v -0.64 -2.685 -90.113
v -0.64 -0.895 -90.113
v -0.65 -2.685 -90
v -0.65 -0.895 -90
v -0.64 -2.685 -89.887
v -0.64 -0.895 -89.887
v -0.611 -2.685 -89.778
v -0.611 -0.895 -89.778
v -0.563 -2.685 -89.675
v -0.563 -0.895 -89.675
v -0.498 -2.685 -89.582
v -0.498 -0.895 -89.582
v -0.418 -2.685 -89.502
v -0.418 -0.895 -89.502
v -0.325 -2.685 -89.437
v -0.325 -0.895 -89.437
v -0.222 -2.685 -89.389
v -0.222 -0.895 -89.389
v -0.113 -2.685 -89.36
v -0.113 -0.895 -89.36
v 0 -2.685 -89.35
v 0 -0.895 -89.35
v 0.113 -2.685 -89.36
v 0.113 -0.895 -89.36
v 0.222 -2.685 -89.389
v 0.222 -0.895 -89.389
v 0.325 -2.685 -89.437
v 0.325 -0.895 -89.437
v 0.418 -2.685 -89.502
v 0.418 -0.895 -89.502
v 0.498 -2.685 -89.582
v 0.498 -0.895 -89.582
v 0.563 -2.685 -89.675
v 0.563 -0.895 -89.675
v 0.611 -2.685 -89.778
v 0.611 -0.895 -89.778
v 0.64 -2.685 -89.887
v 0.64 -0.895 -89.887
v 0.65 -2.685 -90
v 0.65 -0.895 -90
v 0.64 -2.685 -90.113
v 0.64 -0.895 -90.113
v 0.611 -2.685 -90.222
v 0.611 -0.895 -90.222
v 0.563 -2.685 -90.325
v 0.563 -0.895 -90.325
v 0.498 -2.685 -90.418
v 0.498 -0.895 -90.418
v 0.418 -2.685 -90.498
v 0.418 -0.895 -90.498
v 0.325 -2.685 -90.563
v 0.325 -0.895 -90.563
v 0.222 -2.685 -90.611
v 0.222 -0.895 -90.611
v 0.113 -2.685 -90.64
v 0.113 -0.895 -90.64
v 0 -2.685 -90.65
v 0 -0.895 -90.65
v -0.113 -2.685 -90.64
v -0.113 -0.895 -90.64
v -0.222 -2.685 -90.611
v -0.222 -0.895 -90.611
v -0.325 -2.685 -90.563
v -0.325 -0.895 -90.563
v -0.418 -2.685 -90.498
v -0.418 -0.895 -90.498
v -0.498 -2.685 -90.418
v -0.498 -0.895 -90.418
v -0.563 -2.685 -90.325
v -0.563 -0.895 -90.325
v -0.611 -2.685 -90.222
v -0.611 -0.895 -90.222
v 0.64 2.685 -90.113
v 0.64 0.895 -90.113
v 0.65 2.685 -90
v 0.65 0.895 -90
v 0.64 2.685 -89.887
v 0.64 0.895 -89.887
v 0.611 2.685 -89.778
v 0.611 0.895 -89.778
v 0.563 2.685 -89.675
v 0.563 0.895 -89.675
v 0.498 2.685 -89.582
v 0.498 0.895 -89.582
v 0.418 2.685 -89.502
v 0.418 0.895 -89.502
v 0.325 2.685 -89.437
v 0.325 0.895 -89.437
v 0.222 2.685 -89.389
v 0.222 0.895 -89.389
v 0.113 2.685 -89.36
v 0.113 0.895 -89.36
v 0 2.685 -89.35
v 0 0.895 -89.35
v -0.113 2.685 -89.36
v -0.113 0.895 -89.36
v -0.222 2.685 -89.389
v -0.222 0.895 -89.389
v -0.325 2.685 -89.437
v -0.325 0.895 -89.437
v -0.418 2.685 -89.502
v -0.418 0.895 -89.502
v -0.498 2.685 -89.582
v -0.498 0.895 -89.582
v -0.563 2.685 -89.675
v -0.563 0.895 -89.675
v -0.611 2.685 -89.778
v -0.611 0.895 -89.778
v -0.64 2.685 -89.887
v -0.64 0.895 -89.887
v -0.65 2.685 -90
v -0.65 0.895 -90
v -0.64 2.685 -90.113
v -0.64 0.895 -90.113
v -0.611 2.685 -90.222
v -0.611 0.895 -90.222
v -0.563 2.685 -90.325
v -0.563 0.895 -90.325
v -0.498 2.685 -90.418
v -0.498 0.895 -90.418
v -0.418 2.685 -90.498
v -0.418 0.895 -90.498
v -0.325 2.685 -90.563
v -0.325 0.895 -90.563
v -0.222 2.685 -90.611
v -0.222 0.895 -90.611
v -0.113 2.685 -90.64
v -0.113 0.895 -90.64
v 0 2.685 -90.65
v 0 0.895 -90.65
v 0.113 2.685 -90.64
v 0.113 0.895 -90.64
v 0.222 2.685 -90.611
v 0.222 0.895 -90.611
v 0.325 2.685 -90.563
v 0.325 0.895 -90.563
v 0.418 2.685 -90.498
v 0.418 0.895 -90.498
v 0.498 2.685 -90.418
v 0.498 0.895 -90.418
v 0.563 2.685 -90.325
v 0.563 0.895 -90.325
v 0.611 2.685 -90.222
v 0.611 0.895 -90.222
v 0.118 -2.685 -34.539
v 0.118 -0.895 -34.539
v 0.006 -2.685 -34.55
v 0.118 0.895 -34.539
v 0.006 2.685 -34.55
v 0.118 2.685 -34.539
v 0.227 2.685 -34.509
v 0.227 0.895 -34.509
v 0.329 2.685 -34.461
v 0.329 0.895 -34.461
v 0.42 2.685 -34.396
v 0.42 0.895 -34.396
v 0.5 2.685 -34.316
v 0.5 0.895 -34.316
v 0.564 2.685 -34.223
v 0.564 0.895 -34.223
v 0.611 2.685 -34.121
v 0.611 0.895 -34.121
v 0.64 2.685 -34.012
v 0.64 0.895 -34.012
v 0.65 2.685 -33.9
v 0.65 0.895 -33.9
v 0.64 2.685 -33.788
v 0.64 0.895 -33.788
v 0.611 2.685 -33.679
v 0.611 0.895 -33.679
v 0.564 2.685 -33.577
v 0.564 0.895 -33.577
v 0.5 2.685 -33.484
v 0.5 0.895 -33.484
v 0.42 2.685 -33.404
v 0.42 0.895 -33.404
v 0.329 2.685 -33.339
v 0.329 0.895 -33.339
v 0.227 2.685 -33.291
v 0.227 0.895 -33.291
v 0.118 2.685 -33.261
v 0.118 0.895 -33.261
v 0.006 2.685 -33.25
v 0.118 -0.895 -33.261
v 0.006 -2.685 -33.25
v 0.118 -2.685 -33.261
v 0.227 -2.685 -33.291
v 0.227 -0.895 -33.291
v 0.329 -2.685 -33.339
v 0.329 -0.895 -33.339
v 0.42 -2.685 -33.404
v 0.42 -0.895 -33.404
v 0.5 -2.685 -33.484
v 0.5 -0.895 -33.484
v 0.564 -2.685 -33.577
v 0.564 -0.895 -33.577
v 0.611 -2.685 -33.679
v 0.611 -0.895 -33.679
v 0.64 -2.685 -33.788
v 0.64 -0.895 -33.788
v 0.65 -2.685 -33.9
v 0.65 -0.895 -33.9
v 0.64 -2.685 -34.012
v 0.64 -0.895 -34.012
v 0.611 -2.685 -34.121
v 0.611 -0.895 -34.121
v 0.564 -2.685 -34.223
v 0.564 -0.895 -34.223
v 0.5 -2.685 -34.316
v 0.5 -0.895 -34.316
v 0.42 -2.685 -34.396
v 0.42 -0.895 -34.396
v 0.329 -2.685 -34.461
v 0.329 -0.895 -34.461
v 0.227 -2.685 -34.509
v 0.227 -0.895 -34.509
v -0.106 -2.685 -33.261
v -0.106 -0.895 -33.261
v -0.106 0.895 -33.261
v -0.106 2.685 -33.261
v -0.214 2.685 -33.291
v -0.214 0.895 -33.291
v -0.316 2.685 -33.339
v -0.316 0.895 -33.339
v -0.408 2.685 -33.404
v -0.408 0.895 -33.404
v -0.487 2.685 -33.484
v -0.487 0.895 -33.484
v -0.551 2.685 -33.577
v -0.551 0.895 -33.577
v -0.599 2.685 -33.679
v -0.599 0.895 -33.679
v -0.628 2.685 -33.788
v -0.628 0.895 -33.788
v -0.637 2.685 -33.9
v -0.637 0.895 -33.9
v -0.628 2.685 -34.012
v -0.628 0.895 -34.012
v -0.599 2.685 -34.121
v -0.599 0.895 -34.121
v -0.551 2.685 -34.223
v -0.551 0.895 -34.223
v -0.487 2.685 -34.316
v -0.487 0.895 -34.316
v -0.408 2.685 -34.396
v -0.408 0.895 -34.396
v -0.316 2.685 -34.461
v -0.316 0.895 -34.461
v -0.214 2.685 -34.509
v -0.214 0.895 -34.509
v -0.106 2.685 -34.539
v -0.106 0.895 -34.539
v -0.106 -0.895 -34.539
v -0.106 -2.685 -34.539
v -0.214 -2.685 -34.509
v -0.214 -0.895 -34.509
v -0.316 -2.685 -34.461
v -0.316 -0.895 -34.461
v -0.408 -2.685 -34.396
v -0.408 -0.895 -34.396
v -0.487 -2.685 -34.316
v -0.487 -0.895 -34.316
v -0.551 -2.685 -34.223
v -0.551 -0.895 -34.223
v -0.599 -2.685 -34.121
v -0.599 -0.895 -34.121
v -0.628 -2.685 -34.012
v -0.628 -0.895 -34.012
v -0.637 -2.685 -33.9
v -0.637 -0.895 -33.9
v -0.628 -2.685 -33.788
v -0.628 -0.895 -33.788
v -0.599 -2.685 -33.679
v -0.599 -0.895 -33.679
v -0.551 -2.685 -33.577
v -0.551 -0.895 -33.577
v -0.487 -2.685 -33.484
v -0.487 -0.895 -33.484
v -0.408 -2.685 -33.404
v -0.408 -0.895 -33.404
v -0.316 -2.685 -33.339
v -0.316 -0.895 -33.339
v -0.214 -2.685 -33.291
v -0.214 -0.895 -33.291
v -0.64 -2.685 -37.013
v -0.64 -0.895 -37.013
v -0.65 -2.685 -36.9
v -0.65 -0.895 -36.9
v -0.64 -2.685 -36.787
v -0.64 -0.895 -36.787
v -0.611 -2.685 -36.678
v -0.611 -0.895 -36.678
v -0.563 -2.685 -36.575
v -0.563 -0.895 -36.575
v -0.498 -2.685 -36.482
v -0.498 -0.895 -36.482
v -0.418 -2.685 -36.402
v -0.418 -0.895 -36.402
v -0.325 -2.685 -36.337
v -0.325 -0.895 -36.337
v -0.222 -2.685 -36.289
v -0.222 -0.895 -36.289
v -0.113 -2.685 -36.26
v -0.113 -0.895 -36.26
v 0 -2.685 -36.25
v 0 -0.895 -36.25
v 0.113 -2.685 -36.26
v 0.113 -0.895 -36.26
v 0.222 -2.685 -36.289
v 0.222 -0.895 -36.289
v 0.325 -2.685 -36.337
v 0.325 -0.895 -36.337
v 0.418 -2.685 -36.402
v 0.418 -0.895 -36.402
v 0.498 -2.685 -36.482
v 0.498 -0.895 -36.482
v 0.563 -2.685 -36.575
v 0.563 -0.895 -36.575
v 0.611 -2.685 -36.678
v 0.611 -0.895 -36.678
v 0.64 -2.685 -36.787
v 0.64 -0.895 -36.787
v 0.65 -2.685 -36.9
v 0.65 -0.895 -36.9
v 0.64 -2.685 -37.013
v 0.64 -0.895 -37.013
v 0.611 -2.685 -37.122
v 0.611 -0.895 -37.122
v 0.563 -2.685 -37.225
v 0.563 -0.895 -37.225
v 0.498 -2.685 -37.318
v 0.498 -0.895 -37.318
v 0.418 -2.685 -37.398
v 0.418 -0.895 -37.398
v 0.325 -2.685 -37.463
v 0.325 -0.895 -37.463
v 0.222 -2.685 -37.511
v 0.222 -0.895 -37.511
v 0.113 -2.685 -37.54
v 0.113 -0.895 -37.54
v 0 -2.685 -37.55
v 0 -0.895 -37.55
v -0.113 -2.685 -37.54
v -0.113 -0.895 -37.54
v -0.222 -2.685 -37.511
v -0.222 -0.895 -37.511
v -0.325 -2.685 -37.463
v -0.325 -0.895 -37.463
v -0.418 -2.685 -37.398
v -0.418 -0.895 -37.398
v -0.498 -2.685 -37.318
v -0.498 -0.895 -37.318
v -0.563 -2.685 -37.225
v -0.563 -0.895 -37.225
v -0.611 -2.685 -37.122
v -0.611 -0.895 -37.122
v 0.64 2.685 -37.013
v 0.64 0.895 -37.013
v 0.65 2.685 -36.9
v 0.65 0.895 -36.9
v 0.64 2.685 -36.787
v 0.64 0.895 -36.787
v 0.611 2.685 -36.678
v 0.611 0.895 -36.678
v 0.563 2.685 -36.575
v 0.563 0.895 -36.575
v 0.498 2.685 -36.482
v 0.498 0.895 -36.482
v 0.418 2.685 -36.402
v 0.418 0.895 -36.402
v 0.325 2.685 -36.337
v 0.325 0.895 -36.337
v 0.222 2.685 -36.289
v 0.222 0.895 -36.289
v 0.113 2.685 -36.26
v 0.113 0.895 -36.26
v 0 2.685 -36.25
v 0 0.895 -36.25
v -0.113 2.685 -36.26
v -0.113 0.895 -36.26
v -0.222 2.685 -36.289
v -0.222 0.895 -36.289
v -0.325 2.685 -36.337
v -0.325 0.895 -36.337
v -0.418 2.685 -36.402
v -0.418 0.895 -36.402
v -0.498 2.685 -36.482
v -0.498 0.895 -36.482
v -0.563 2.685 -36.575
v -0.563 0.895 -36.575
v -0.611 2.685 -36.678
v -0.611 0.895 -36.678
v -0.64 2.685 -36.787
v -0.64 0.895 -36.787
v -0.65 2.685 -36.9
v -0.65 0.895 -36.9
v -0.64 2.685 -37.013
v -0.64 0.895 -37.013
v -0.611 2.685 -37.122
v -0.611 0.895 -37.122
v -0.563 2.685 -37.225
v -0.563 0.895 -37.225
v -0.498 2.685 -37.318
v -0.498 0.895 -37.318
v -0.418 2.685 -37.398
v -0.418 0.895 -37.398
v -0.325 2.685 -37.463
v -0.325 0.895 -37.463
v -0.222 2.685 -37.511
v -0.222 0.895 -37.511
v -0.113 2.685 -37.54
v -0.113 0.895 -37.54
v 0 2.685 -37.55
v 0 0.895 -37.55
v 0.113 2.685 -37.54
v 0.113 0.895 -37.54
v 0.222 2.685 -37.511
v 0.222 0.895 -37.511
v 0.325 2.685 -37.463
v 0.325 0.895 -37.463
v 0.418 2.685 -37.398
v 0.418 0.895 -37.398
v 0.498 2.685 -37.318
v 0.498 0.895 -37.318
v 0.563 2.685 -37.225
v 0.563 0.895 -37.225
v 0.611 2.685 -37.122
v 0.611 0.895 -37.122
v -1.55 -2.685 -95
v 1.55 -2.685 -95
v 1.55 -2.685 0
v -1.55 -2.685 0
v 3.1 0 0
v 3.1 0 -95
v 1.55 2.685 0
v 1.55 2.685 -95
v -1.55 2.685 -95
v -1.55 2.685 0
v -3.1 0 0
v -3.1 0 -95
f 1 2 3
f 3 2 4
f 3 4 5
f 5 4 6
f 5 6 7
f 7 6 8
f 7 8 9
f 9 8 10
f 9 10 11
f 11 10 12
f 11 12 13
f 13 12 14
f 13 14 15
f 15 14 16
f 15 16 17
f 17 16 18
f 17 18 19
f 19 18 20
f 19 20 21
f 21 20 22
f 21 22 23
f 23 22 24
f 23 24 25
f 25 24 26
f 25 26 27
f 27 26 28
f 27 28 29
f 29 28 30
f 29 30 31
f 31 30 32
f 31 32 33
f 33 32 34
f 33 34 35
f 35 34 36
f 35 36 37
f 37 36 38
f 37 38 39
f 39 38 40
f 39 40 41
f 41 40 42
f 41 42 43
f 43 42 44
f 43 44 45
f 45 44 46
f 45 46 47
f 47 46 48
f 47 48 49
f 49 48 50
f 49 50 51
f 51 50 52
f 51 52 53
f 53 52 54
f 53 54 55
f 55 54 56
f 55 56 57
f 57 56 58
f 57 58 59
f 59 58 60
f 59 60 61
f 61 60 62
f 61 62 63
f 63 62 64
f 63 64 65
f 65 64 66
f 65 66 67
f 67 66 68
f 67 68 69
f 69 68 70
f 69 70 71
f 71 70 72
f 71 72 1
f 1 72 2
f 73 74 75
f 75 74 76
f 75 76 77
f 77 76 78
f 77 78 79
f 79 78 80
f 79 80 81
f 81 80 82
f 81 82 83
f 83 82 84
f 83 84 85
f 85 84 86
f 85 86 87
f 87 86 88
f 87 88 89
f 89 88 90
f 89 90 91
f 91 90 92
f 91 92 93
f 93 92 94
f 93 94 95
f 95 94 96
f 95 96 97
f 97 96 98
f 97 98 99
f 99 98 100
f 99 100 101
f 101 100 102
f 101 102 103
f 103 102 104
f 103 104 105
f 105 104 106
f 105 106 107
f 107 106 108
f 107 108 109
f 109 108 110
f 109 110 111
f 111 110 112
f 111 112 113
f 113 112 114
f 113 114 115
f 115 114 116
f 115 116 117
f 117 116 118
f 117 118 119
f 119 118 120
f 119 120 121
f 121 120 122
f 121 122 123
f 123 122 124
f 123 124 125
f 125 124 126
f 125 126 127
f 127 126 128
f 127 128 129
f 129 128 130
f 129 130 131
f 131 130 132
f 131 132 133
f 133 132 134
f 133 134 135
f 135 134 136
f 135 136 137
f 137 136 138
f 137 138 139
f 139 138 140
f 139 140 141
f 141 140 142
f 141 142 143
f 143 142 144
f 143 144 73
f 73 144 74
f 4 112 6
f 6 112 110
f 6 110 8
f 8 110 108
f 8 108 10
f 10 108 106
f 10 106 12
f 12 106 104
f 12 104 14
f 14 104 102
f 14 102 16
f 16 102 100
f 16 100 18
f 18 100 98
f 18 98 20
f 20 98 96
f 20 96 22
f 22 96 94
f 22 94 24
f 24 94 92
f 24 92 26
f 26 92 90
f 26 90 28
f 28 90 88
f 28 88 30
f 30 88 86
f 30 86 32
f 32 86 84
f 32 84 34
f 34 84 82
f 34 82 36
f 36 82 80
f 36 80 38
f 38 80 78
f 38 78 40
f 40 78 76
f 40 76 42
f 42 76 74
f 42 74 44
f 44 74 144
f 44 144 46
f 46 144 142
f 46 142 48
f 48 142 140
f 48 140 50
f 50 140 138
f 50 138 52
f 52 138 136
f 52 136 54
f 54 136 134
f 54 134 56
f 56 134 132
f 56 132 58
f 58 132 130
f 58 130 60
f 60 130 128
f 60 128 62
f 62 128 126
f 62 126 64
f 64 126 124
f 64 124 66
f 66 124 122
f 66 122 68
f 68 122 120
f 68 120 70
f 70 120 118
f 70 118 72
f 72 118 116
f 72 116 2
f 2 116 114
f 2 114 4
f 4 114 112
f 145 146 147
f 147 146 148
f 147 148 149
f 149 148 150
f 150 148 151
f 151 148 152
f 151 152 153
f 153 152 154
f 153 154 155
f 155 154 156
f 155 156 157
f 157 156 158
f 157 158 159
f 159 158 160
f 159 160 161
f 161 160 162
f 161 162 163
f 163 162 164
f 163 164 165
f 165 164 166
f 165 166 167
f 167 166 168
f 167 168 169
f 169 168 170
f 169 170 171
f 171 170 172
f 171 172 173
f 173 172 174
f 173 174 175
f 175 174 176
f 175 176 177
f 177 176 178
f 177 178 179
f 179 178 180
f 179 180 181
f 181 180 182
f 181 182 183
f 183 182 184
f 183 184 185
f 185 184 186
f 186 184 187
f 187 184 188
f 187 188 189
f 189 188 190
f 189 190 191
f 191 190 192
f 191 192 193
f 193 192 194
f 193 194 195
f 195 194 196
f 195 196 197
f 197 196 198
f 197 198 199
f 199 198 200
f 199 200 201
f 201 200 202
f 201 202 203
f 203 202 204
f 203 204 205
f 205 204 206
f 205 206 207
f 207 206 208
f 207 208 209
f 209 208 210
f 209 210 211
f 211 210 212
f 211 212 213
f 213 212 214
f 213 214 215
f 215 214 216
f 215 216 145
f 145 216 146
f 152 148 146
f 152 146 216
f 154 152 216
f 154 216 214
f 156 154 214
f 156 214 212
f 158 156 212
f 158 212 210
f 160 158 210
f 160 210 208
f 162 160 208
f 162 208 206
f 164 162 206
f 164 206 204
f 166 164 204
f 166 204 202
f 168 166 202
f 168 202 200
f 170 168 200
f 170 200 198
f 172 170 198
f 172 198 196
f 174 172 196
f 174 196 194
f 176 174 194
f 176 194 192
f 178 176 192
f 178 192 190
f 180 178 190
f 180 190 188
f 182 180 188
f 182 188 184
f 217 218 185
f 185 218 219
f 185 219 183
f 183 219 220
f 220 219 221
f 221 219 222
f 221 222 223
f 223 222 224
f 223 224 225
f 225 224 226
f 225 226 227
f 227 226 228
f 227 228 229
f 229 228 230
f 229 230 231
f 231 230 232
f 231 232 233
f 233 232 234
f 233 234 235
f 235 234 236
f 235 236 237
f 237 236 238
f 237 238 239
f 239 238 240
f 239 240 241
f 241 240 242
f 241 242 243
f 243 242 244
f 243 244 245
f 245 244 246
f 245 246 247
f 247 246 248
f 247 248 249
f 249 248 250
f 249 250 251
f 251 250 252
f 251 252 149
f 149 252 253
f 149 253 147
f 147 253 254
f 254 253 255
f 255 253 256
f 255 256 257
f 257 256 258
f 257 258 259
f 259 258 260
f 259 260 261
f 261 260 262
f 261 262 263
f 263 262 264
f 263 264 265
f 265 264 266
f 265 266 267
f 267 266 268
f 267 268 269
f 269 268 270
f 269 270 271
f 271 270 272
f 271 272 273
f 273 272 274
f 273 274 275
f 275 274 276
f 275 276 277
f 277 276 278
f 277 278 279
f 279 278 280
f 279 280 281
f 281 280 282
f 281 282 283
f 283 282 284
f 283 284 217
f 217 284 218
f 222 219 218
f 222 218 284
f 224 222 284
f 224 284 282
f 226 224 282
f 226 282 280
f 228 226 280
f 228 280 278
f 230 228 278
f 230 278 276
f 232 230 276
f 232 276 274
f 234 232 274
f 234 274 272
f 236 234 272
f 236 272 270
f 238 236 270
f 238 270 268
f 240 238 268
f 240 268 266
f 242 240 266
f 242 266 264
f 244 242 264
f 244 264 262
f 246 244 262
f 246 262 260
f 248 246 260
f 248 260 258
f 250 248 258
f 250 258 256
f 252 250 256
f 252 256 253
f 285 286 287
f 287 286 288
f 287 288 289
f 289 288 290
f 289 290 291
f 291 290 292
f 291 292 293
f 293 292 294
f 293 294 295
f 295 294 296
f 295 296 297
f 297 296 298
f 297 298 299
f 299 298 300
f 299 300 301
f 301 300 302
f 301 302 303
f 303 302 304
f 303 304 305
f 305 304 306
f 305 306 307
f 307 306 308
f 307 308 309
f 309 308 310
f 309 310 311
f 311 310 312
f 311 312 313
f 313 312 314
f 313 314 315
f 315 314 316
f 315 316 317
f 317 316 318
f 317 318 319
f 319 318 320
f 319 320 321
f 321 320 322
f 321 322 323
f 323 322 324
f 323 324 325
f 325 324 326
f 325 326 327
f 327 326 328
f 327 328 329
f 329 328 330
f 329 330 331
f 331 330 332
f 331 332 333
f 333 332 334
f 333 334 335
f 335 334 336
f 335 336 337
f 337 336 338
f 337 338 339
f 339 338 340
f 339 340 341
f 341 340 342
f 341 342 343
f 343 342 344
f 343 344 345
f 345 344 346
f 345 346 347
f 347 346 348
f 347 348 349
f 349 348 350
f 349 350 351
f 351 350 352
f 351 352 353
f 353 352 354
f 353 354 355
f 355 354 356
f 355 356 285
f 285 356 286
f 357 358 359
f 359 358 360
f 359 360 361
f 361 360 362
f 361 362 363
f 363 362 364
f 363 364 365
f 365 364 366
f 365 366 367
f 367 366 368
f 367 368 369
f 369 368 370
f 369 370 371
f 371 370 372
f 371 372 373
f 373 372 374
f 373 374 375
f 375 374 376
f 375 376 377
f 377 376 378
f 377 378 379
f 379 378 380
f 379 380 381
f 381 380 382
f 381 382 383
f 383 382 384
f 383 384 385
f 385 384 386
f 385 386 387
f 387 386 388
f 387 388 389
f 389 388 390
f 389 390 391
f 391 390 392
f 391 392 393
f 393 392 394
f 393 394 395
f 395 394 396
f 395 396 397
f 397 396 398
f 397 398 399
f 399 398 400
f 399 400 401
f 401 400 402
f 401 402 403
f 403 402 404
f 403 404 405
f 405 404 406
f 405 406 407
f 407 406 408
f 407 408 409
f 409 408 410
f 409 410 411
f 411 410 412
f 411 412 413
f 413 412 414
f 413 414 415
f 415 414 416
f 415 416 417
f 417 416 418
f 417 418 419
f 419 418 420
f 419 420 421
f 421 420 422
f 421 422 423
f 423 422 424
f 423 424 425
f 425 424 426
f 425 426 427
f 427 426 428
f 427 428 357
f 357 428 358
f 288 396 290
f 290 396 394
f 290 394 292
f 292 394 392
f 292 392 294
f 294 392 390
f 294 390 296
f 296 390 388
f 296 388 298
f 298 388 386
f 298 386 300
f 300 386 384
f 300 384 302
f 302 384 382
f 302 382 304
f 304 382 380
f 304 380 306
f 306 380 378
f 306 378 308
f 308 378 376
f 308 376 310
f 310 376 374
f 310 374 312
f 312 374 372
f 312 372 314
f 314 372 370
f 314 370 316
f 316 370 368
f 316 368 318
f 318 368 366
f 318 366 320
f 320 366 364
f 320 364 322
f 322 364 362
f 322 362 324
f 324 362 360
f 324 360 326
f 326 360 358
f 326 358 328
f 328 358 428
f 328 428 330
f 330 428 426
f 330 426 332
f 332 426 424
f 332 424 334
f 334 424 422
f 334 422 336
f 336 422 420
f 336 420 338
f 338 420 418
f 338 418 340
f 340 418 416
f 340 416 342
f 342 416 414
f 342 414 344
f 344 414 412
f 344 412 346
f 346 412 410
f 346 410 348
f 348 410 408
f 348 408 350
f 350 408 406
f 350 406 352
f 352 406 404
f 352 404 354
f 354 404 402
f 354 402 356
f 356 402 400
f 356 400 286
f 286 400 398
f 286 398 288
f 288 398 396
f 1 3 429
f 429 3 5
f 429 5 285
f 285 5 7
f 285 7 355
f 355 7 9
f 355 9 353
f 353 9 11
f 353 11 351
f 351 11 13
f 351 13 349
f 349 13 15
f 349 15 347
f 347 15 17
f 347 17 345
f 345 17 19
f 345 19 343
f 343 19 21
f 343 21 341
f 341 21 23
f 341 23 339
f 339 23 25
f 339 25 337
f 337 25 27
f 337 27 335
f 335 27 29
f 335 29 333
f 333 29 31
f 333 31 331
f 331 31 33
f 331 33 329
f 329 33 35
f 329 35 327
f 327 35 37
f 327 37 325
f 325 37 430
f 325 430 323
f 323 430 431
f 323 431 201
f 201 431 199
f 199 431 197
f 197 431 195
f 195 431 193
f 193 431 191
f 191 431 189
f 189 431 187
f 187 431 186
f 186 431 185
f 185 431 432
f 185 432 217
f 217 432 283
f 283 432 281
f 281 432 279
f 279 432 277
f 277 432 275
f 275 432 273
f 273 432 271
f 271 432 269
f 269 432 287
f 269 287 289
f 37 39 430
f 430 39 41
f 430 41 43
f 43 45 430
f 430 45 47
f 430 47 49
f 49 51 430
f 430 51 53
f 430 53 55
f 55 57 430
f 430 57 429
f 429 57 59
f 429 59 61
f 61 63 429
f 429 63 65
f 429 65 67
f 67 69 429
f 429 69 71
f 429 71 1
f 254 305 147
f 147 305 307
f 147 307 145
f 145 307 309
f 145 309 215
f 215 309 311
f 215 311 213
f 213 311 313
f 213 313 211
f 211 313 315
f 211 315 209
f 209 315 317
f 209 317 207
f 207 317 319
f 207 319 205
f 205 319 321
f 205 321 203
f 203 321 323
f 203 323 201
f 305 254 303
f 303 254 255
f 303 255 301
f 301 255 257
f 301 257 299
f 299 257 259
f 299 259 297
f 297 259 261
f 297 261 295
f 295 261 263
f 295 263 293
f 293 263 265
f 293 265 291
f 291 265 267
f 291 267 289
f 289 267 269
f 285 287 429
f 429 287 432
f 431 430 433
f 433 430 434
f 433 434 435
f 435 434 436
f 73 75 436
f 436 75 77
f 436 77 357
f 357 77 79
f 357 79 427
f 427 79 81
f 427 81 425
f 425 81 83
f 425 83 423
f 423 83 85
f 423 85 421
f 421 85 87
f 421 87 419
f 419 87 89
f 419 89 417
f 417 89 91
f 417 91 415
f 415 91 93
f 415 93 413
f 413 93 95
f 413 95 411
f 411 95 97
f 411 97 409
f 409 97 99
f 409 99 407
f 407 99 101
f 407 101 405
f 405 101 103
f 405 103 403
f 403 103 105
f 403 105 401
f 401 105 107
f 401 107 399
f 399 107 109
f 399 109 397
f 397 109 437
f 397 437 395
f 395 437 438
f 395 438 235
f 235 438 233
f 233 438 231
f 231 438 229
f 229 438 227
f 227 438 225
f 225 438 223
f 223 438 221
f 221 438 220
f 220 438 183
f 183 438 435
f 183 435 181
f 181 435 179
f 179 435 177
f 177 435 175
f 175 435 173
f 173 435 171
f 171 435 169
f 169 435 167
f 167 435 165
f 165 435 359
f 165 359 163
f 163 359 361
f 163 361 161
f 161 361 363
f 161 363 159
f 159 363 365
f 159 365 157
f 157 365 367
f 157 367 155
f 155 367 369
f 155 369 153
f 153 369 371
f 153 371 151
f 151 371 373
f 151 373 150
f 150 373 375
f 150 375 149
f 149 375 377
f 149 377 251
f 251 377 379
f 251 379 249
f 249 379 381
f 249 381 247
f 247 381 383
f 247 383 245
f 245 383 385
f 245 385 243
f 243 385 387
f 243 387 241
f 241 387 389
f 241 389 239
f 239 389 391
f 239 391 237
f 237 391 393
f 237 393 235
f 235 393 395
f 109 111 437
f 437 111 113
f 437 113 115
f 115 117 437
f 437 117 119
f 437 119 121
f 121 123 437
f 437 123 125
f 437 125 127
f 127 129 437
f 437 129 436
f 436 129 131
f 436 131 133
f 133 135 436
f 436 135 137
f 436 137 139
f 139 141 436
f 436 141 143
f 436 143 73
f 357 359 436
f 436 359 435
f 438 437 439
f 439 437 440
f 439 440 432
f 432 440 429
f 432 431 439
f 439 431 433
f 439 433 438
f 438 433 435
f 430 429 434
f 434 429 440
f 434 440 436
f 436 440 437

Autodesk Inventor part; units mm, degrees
ref_plane "YZ Plane" through (0, 0, 0) normal (1, 0, 0) x (0, 1, 0)
ref_plane "XZ Plane" through (0, 0, 0) normal (0, 1, 0) x (-1, 0, 0)
ref_plane "XY Plane" through (0, 0, 0) normal (0, 0, 1) x (1, 0, 0)
sketch "Sketch1" plane through (0, 0, 0) normal (0, 0, 1) x (1, 0, 0)
  circle A0 centre (0, 0) radius 7.5 projected
  line L0 (-1.7809, 3.0847) -> (1.7809, 3.0847) projected
  line L1 (0, 0) -> (3.1, 0) construction
  line L2 (0, 0) -> (1.55, 2.6847) construction
  line L3 (0, 0) -> (-1.55, 2.6847) construction
  line L4 (0, 0) -> (-3.1, 0) construction
  line L5 (0, 0) -> (-1.55, -2.6847) construction
  line L6 (0, 0) -> (1.55, -2.6847) construction
  line L7 (-1.55, 2.6847) -> (1.55, 2.6847)
  line L8 (1.55, 2.6847) -> (3.1, 0)
  line L9 (3.1, 0) -> (1.55, -2.6847)
  line L10 (1.55, -2.6847) -> (-1.55, -2.6847)
  line L11 (-1.55, -2.6847) -> (-3.1, 0)
  line L12 (-3.1, 0) -> (-1.55, 2.6847)
  dimension "d0" = 3.1
  dimension "d3" = 360
extrude "Extrusion1" add sketch "Sketch1" against normal blind 95 contours L7 L8 L9 L10 L11 L12
sketch "Sketch2" plane through (-1.55, 2.6847, 0) normal (0, 1, 0) x (1, 0, 0)
  line L0 (0, 0) -> (0, 95) projected
  line L1 (3.1, 0) -> (3.1, 95) projected
  circle A0 centre (1.55, 33.9) radius 0.65
  circle A1 centre (1.55, 36.9) radius 0.65
  line L2 (3.1, 0) -> (0, 0) projected
  circle A2 centre (1.5476, 33.9) radius 0.65 projected
  circle A3 centre (1.55, 90) radius 0.65
  line L3 (0, 95) -> (3.1, 95) projected
  point P0 (1.55, 0)
  point P1 (1.55, 0)
  point P2 (1.55, 0)
  point P3 (1.5488, 34.55)
  point P4 (1.5488, 33.25)
  dimension "d7" = 1.3
  dimension "d8" = 3
  dimension "d9" = 33.9
  dimension "d10" = 5
extrude "Extrusion2" cut sketch "Sketch2" against normal blind 10 contours A0 A2 | A2 A0 | A1 | A3
properties part number "eje4_n"
